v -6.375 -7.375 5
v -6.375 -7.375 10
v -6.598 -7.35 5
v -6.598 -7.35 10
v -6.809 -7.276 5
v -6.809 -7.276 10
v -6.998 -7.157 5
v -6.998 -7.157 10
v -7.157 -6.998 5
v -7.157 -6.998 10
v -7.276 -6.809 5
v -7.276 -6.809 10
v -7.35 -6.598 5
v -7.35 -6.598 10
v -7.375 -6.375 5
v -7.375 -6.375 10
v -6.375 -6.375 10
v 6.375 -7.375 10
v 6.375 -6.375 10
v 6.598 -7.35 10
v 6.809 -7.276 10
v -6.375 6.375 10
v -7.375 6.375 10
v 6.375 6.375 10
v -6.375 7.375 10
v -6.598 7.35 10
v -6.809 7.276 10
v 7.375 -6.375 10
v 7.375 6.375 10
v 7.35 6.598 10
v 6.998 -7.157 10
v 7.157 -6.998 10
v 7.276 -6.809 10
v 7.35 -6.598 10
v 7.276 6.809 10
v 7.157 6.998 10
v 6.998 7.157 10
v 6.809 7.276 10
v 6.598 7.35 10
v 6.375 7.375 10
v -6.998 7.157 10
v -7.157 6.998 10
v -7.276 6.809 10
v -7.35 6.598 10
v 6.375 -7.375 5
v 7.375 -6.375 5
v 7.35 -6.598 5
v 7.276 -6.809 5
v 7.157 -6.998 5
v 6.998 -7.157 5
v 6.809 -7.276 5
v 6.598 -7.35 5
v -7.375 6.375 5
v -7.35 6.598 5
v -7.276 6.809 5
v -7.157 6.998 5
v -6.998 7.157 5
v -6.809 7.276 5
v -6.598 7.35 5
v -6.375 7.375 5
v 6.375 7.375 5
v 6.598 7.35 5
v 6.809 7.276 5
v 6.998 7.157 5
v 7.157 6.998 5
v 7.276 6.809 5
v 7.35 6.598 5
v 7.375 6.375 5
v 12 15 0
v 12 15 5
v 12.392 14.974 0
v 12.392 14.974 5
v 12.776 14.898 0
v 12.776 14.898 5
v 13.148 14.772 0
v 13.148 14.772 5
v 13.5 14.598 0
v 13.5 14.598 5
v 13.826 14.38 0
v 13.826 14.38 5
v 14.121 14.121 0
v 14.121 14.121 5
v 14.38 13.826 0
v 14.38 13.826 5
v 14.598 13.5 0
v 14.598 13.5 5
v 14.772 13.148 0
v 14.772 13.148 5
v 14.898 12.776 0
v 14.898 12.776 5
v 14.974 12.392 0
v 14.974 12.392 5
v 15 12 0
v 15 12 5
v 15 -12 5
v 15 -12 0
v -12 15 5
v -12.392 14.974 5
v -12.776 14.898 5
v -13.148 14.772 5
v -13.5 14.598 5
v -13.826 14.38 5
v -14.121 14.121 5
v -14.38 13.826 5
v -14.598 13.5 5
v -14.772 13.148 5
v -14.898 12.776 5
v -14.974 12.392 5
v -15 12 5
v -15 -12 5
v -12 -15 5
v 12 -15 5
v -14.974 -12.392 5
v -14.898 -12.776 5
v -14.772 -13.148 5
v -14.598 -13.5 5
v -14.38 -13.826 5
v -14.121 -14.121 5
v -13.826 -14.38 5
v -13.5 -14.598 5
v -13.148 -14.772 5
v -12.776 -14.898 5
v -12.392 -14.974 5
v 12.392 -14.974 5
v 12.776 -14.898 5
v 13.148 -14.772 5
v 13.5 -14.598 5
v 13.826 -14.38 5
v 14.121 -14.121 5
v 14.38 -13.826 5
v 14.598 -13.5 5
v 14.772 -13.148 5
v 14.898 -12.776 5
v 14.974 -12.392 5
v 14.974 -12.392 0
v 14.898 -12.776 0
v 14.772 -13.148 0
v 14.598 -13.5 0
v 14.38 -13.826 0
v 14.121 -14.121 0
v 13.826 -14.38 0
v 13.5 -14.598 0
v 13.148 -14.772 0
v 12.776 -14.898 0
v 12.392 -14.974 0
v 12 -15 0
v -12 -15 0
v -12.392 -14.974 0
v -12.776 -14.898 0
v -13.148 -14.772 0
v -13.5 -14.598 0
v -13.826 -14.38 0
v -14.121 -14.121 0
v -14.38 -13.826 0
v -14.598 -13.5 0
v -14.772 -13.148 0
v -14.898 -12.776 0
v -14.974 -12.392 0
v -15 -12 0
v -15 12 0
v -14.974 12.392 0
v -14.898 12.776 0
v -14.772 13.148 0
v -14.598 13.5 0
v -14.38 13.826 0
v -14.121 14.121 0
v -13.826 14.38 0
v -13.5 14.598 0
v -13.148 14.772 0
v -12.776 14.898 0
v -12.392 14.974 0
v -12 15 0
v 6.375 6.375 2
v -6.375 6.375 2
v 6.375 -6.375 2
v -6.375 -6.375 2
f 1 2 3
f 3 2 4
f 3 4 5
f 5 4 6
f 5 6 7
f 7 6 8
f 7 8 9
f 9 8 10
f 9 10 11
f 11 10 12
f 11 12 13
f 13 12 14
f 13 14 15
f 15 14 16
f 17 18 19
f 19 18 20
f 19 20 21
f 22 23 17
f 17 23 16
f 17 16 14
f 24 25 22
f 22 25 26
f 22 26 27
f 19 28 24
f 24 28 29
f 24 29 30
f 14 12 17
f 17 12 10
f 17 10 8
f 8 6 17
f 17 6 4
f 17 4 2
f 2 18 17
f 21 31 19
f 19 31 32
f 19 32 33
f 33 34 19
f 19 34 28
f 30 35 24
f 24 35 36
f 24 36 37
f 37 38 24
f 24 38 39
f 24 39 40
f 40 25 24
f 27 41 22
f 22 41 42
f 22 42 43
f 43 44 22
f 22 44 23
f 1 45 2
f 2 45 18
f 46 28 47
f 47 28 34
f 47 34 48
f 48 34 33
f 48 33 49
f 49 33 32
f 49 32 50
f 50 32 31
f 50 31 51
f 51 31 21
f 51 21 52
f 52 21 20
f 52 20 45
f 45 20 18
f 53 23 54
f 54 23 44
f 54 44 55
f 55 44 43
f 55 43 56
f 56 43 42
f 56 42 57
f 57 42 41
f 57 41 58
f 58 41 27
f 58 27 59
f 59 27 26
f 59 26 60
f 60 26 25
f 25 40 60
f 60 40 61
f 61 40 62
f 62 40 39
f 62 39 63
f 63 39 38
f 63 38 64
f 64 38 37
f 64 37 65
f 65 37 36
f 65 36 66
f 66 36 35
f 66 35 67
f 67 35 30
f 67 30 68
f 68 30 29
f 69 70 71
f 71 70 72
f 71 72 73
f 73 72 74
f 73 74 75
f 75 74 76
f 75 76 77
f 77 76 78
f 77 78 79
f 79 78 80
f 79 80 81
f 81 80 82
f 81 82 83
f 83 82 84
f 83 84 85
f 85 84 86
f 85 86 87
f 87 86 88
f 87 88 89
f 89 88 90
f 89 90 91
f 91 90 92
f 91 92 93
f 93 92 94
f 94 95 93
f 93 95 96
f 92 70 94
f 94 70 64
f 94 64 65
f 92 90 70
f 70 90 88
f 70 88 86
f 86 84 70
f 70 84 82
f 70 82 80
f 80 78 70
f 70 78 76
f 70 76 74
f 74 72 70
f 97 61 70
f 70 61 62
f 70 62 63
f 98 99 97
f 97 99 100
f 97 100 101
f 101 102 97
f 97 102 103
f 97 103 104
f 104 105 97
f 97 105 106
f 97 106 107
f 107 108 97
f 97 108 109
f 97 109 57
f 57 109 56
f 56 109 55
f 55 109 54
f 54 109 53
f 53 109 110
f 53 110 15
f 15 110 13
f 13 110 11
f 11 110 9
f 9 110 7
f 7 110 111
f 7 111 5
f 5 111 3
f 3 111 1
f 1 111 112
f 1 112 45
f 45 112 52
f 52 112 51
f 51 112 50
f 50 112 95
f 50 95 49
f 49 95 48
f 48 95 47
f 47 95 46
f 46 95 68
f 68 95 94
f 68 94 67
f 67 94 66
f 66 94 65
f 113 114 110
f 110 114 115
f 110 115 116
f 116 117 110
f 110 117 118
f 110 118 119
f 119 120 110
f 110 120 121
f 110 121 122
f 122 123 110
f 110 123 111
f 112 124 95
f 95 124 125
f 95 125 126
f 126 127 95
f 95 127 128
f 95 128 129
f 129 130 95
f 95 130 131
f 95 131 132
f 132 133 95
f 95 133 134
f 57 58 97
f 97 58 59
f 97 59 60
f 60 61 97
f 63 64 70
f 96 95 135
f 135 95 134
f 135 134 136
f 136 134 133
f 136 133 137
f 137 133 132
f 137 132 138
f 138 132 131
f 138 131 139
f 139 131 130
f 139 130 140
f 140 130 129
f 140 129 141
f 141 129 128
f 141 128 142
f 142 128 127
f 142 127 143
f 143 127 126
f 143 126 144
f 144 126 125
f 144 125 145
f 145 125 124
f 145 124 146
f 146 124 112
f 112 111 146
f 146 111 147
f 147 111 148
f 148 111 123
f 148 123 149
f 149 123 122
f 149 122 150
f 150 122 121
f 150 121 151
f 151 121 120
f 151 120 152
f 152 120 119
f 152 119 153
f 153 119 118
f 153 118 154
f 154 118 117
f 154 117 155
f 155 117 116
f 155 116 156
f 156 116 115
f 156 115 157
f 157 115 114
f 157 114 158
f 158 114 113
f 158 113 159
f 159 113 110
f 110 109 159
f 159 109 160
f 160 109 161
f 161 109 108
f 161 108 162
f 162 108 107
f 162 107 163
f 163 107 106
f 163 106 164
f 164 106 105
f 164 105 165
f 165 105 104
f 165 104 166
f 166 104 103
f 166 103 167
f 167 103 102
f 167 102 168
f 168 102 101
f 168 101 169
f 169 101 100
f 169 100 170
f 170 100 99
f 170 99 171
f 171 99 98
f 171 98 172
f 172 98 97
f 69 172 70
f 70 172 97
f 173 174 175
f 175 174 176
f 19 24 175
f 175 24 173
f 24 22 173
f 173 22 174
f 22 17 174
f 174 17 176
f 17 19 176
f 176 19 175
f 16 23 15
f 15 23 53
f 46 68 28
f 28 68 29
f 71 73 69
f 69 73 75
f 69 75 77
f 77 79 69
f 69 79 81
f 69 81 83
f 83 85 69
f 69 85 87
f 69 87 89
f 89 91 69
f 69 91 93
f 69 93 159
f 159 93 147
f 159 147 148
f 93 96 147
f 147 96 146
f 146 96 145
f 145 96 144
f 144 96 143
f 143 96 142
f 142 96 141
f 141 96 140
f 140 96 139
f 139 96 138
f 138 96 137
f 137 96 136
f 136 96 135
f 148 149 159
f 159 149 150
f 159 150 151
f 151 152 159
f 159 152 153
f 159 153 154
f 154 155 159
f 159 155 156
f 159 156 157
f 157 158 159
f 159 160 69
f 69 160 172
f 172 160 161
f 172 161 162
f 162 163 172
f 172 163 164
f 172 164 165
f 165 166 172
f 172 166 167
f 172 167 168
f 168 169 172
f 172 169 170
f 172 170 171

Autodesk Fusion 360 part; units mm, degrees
sketch "Sketch1" plane through (0, 0, 0) normal (0, 0, 1) x (1, 0, 0)
  line L0 (15, -15) -> (-15, -15)
  line L1 (-15, -15) -> (-15, 15)
  line L2 (-15, 15) -> (15, 15)
  line L3 (15, 15) -> (15, -15)
  line L4 (15, -15) -> (-15, 15) construction
  line L5 (-15, -15) -> (15, 15) construction
  dimension "d1" = 30
  dimension "d2" = 30
extrude "Extrude1" add sketch "Sketch1" along normal blind 5 makes body 1
sketch "Sketch2" plane through (0, 0, 5) normal (0, 0, 1) x (-1, 0, 0)
  line L0 (-15, -15) -> (15, -15)
  line L1 (15, -15) -> (15, 15)
  line L2 (15, 15) -> (-15, 15)
  line L3 (-15, 15) -> (-15, -15)
  line L4 (6.375, -6.375) -> (-6.375, -6.375)
  line L5 (-6.375, -6.375) -> (-6.375, 6.375)
  line L6 (-6.375, 6.375) -> (6.375, 6.375)
  line L7 (6.375, 6.375) -> (6.375, -6.375)
  line L8 (6.375, -6.375) -> (-6.375, 6.375) construction
  line L9 (-6.375, -6.375) -> (6.375, 6.375) construction
  line L10 (7.375, 7.375) -> (7.375, -7.375)
  line L11 (7.375, -7.375) -> (-7.375, -7.375)
  line L12 (-7.375, -7.375) -> (-7.375, 7.375)
  line L13 (-7.375, 7.375) -> (7.375, 7.375)
  dimension "d5" = 12.75
  dimension "d6" = 12.75
  dimension "d7" = -1
extrude "Extrude2" add sketch "Sketch2" along normal blind 5 contours L10 L11 L12 L13 bodies 1
extrude "Extrude3" cut 1 faces at (-2.125, -2.125, 5) along direction (0, 0, -1) up to surface (3 mm away) on bodies 1 bodies 1
fillet "Fillet1" radius 3 1 edges at (-15, 15, 2.5) on bodies 1
fillet "Fillet2" radius 3 3 edges at (-15, -15, 2.5) (15, -15, 2.5) (15, 15, 2.5) on bodies 1
fillet "Fillet3" radius 1 4 edges at (7.375, 7.375, 7.5) (-7.375, 7.375, 7.5) (7.375, -7.375, 7.5) (-7.375, -7.375, 7.5) on bodies 1
copy_body "Body->Comp1" bodies 1 removing the originals makes body 2 in component "Cuvette_Holder"
component "Cuvette_Holder" placed x (1, 0, 0) y (0, 1, 0) z (0, 0, 1) at (0, 0, 0)
